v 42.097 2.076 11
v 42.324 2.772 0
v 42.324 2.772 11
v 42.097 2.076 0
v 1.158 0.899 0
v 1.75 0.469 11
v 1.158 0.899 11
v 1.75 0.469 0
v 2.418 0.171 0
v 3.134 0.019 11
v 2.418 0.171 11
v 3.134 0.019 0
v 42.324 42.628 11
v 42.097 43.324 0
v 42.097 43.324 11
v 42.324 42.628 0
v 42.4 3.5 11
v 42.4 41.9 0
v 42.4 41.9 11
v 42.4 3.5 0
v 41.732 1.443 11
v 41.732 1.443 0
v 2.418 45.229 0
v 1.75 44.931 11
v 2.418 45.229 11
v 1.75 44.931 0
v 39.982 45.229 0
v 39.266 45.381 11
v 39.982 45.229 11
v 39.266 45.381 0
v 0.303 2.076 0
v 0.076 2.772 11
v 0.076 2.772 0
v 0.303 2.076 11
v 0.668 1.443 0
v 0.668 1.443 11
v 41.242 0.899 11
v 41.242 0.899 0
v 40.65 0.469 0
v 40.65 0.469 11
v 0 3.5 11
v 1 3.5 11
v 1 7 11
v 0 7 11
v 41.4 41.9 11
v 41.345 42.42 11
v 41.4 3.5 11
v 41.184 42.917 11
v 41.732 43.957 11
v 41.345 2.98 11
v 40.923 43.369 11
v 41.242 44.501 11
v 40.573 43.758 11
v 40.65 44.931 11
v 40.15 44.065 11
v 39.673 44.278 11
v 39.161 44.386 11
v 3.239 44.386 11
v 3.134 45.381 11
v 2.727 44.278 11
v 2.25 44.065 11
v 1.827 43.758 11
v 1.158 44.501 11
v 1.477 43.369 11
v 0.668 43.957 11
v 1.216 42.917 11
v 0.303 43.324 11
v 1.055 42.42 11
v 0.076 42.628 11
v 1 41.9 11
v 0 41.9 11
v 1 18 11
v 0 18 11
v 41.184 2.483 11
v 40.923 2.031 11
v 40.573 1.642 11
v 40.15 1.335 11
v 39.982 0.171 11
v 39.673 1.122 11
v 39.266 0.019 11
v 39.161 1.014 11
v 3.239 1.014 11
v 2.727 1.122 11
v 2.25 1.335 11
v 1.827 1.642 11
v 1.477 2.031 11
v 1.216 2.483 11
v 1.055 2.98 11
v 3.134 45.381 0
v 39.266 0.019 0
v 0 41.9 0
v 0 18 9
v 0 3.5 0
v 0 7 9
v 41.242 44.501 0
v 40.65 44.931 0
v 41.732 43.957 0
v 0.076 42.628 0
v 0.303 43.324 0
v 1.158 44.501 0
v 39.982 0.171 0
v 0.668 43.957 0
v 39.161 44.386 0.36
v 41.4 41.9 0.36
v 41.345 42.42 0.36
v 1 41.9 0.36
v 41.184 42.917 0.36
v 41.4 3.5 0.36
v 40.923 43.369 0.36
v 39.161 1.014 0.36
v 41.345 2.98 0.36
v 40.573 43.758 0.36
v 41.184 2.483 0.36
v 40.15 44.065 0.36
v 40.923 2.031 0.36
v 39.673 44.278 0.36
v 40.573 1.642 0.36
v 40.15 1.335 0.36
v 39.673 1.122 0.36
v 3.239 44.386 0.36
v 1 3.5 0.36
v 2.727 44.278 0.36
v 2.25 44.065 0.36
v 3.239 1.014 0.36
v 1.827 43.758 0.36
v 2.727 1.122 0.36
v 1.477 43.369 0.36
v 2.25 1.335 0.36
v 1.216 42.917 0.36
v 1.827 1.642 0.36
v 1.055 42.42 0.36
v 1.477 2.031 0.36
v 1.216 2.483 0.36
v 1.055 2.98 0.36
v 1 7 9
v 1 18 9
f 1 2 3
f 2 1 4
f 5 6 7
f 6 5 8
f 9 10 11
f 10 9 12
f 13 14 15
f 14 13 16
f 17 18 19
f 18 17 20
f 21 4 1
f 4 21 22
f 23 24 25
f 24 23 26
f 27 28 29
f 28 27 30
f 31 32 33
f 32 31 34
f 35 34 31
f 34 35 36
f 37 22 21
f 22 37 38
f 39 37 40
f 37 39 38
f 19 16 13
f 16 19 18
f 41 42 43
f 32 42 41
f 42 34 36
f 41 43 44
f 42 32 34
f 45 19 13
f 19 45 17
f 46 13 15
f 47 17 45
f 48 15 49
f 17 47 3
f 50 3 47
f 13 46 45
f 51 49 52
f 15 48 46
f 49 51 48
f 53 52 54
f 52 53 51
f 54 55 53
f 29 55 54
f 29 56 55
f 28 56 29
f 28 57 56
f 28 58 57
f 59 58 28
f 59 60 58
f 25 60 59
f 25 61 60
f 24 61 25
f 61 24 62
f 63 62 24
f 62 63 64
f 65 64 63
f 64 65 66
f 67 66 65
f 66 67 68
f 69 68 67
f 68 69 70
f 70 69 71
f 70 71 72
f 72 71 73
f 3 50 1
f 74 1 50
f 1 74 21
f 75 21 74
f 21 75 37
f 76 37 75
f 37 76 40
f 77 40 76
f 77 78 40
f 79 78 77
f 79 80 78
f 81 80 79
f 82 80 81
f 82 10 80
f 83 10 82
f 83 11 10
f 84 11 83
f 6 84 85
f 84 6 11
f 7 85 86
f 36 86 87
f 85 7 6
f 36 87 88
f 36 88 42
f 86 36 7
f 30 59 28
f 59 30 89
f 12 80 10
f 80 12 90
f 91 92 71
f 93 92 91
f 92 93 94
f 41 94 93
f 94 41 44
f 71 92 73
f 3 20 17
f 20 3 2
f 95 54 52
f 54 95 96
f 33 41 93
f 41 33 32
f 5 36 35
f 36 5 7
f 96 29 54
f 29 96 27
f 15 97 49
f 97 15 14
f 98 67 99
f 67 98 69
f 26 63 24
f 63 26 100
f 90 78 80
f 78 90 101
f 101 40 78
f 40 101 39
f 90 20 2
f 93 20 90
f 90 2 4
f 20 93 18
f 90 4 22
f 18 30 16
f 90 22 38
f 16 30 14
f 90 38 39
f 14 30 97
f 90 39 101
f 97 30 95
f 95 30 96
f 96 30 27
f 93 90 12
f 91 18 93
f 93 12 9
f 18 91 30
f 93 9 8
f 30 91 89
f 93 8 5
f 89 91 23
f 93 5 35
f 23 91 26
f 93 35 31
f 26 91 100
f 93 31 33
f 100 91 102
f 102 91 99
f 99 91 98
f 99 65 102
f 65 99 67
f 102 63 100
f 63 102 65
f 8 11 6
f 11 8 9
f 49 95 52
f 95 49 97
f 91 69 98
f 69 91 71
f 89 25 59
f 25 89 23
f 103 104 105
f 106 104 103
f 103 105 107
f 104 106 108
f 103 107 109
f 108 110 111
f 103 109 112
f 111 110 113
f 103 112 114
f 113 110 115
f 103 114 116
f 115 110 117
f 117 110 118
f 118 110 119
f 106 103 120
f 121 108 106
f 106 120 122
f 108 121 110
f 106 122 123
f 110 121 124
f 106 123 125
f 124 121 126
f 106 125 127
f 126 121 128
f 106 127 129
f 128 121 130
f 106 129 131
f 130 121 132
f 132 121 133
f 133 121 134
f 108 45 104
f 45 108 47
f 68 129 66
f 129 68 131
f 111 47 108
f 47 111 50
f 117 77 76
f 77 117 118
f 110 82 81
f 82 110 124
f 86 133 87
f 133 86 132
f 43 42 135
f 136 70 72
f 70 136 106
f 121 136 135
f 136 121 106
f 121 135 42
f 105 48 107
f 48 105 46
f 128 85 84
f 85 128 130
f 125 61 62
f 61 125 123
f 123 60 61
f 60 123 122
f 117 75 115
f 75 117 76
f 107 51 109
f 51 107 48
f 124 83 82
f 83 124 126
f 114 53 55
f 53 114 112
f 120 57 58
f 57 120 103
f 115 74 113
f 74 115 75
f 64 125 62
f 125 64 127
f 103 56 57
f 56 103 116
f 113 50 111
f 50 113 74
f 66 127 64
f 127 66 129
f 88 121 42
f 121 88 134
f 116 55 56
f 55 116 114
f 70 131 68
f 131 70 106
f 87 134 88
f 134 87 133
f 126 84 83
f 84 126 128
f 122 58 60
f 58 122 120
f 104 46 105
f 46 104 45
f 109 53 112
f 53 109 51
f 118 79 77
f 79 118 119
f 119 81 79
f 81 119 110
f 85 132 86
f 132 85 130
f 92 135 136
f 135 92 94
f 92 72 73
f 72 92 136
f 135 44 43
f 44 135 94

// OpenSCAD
$fn = 30;


tp_h = 1.6;
tp_w = 40.4;
tp_d = 43.4;
tp_r = 2.5;
overlay_h = 0.36;

wall_t = 1;

box_h = 11;
box_w = tp_w + 2*wall_t;
box_d = tp_d + 2*wall_t;
box_r = tp_r + wall_t;

module rounded_cube(x, y, z, r) {
    hull() {
        translate([r, r, 0])
        cylinder(r=r, h=z);
        translate([x-r, r, 0])
        cylinder(r=r, h=z);
        translate([x-r, y-r, 0])
        cylinder(r=r, h=z);
        translate([r, y-r, 0])
        cylinder(r=r, h=z);
    }
}


module touchpad_case() {
    difference() {
        rounded_cube(box_w, box_d, box_h, box_r);
        translate([wall_t, wall_t, overlay_h])
            rounded_cube(tp_w, tp_d, box_h, tp_r);
        translate([-5, 7, 9])
            cube([10, 11, 10]);
    }
}

touchpad_case();
